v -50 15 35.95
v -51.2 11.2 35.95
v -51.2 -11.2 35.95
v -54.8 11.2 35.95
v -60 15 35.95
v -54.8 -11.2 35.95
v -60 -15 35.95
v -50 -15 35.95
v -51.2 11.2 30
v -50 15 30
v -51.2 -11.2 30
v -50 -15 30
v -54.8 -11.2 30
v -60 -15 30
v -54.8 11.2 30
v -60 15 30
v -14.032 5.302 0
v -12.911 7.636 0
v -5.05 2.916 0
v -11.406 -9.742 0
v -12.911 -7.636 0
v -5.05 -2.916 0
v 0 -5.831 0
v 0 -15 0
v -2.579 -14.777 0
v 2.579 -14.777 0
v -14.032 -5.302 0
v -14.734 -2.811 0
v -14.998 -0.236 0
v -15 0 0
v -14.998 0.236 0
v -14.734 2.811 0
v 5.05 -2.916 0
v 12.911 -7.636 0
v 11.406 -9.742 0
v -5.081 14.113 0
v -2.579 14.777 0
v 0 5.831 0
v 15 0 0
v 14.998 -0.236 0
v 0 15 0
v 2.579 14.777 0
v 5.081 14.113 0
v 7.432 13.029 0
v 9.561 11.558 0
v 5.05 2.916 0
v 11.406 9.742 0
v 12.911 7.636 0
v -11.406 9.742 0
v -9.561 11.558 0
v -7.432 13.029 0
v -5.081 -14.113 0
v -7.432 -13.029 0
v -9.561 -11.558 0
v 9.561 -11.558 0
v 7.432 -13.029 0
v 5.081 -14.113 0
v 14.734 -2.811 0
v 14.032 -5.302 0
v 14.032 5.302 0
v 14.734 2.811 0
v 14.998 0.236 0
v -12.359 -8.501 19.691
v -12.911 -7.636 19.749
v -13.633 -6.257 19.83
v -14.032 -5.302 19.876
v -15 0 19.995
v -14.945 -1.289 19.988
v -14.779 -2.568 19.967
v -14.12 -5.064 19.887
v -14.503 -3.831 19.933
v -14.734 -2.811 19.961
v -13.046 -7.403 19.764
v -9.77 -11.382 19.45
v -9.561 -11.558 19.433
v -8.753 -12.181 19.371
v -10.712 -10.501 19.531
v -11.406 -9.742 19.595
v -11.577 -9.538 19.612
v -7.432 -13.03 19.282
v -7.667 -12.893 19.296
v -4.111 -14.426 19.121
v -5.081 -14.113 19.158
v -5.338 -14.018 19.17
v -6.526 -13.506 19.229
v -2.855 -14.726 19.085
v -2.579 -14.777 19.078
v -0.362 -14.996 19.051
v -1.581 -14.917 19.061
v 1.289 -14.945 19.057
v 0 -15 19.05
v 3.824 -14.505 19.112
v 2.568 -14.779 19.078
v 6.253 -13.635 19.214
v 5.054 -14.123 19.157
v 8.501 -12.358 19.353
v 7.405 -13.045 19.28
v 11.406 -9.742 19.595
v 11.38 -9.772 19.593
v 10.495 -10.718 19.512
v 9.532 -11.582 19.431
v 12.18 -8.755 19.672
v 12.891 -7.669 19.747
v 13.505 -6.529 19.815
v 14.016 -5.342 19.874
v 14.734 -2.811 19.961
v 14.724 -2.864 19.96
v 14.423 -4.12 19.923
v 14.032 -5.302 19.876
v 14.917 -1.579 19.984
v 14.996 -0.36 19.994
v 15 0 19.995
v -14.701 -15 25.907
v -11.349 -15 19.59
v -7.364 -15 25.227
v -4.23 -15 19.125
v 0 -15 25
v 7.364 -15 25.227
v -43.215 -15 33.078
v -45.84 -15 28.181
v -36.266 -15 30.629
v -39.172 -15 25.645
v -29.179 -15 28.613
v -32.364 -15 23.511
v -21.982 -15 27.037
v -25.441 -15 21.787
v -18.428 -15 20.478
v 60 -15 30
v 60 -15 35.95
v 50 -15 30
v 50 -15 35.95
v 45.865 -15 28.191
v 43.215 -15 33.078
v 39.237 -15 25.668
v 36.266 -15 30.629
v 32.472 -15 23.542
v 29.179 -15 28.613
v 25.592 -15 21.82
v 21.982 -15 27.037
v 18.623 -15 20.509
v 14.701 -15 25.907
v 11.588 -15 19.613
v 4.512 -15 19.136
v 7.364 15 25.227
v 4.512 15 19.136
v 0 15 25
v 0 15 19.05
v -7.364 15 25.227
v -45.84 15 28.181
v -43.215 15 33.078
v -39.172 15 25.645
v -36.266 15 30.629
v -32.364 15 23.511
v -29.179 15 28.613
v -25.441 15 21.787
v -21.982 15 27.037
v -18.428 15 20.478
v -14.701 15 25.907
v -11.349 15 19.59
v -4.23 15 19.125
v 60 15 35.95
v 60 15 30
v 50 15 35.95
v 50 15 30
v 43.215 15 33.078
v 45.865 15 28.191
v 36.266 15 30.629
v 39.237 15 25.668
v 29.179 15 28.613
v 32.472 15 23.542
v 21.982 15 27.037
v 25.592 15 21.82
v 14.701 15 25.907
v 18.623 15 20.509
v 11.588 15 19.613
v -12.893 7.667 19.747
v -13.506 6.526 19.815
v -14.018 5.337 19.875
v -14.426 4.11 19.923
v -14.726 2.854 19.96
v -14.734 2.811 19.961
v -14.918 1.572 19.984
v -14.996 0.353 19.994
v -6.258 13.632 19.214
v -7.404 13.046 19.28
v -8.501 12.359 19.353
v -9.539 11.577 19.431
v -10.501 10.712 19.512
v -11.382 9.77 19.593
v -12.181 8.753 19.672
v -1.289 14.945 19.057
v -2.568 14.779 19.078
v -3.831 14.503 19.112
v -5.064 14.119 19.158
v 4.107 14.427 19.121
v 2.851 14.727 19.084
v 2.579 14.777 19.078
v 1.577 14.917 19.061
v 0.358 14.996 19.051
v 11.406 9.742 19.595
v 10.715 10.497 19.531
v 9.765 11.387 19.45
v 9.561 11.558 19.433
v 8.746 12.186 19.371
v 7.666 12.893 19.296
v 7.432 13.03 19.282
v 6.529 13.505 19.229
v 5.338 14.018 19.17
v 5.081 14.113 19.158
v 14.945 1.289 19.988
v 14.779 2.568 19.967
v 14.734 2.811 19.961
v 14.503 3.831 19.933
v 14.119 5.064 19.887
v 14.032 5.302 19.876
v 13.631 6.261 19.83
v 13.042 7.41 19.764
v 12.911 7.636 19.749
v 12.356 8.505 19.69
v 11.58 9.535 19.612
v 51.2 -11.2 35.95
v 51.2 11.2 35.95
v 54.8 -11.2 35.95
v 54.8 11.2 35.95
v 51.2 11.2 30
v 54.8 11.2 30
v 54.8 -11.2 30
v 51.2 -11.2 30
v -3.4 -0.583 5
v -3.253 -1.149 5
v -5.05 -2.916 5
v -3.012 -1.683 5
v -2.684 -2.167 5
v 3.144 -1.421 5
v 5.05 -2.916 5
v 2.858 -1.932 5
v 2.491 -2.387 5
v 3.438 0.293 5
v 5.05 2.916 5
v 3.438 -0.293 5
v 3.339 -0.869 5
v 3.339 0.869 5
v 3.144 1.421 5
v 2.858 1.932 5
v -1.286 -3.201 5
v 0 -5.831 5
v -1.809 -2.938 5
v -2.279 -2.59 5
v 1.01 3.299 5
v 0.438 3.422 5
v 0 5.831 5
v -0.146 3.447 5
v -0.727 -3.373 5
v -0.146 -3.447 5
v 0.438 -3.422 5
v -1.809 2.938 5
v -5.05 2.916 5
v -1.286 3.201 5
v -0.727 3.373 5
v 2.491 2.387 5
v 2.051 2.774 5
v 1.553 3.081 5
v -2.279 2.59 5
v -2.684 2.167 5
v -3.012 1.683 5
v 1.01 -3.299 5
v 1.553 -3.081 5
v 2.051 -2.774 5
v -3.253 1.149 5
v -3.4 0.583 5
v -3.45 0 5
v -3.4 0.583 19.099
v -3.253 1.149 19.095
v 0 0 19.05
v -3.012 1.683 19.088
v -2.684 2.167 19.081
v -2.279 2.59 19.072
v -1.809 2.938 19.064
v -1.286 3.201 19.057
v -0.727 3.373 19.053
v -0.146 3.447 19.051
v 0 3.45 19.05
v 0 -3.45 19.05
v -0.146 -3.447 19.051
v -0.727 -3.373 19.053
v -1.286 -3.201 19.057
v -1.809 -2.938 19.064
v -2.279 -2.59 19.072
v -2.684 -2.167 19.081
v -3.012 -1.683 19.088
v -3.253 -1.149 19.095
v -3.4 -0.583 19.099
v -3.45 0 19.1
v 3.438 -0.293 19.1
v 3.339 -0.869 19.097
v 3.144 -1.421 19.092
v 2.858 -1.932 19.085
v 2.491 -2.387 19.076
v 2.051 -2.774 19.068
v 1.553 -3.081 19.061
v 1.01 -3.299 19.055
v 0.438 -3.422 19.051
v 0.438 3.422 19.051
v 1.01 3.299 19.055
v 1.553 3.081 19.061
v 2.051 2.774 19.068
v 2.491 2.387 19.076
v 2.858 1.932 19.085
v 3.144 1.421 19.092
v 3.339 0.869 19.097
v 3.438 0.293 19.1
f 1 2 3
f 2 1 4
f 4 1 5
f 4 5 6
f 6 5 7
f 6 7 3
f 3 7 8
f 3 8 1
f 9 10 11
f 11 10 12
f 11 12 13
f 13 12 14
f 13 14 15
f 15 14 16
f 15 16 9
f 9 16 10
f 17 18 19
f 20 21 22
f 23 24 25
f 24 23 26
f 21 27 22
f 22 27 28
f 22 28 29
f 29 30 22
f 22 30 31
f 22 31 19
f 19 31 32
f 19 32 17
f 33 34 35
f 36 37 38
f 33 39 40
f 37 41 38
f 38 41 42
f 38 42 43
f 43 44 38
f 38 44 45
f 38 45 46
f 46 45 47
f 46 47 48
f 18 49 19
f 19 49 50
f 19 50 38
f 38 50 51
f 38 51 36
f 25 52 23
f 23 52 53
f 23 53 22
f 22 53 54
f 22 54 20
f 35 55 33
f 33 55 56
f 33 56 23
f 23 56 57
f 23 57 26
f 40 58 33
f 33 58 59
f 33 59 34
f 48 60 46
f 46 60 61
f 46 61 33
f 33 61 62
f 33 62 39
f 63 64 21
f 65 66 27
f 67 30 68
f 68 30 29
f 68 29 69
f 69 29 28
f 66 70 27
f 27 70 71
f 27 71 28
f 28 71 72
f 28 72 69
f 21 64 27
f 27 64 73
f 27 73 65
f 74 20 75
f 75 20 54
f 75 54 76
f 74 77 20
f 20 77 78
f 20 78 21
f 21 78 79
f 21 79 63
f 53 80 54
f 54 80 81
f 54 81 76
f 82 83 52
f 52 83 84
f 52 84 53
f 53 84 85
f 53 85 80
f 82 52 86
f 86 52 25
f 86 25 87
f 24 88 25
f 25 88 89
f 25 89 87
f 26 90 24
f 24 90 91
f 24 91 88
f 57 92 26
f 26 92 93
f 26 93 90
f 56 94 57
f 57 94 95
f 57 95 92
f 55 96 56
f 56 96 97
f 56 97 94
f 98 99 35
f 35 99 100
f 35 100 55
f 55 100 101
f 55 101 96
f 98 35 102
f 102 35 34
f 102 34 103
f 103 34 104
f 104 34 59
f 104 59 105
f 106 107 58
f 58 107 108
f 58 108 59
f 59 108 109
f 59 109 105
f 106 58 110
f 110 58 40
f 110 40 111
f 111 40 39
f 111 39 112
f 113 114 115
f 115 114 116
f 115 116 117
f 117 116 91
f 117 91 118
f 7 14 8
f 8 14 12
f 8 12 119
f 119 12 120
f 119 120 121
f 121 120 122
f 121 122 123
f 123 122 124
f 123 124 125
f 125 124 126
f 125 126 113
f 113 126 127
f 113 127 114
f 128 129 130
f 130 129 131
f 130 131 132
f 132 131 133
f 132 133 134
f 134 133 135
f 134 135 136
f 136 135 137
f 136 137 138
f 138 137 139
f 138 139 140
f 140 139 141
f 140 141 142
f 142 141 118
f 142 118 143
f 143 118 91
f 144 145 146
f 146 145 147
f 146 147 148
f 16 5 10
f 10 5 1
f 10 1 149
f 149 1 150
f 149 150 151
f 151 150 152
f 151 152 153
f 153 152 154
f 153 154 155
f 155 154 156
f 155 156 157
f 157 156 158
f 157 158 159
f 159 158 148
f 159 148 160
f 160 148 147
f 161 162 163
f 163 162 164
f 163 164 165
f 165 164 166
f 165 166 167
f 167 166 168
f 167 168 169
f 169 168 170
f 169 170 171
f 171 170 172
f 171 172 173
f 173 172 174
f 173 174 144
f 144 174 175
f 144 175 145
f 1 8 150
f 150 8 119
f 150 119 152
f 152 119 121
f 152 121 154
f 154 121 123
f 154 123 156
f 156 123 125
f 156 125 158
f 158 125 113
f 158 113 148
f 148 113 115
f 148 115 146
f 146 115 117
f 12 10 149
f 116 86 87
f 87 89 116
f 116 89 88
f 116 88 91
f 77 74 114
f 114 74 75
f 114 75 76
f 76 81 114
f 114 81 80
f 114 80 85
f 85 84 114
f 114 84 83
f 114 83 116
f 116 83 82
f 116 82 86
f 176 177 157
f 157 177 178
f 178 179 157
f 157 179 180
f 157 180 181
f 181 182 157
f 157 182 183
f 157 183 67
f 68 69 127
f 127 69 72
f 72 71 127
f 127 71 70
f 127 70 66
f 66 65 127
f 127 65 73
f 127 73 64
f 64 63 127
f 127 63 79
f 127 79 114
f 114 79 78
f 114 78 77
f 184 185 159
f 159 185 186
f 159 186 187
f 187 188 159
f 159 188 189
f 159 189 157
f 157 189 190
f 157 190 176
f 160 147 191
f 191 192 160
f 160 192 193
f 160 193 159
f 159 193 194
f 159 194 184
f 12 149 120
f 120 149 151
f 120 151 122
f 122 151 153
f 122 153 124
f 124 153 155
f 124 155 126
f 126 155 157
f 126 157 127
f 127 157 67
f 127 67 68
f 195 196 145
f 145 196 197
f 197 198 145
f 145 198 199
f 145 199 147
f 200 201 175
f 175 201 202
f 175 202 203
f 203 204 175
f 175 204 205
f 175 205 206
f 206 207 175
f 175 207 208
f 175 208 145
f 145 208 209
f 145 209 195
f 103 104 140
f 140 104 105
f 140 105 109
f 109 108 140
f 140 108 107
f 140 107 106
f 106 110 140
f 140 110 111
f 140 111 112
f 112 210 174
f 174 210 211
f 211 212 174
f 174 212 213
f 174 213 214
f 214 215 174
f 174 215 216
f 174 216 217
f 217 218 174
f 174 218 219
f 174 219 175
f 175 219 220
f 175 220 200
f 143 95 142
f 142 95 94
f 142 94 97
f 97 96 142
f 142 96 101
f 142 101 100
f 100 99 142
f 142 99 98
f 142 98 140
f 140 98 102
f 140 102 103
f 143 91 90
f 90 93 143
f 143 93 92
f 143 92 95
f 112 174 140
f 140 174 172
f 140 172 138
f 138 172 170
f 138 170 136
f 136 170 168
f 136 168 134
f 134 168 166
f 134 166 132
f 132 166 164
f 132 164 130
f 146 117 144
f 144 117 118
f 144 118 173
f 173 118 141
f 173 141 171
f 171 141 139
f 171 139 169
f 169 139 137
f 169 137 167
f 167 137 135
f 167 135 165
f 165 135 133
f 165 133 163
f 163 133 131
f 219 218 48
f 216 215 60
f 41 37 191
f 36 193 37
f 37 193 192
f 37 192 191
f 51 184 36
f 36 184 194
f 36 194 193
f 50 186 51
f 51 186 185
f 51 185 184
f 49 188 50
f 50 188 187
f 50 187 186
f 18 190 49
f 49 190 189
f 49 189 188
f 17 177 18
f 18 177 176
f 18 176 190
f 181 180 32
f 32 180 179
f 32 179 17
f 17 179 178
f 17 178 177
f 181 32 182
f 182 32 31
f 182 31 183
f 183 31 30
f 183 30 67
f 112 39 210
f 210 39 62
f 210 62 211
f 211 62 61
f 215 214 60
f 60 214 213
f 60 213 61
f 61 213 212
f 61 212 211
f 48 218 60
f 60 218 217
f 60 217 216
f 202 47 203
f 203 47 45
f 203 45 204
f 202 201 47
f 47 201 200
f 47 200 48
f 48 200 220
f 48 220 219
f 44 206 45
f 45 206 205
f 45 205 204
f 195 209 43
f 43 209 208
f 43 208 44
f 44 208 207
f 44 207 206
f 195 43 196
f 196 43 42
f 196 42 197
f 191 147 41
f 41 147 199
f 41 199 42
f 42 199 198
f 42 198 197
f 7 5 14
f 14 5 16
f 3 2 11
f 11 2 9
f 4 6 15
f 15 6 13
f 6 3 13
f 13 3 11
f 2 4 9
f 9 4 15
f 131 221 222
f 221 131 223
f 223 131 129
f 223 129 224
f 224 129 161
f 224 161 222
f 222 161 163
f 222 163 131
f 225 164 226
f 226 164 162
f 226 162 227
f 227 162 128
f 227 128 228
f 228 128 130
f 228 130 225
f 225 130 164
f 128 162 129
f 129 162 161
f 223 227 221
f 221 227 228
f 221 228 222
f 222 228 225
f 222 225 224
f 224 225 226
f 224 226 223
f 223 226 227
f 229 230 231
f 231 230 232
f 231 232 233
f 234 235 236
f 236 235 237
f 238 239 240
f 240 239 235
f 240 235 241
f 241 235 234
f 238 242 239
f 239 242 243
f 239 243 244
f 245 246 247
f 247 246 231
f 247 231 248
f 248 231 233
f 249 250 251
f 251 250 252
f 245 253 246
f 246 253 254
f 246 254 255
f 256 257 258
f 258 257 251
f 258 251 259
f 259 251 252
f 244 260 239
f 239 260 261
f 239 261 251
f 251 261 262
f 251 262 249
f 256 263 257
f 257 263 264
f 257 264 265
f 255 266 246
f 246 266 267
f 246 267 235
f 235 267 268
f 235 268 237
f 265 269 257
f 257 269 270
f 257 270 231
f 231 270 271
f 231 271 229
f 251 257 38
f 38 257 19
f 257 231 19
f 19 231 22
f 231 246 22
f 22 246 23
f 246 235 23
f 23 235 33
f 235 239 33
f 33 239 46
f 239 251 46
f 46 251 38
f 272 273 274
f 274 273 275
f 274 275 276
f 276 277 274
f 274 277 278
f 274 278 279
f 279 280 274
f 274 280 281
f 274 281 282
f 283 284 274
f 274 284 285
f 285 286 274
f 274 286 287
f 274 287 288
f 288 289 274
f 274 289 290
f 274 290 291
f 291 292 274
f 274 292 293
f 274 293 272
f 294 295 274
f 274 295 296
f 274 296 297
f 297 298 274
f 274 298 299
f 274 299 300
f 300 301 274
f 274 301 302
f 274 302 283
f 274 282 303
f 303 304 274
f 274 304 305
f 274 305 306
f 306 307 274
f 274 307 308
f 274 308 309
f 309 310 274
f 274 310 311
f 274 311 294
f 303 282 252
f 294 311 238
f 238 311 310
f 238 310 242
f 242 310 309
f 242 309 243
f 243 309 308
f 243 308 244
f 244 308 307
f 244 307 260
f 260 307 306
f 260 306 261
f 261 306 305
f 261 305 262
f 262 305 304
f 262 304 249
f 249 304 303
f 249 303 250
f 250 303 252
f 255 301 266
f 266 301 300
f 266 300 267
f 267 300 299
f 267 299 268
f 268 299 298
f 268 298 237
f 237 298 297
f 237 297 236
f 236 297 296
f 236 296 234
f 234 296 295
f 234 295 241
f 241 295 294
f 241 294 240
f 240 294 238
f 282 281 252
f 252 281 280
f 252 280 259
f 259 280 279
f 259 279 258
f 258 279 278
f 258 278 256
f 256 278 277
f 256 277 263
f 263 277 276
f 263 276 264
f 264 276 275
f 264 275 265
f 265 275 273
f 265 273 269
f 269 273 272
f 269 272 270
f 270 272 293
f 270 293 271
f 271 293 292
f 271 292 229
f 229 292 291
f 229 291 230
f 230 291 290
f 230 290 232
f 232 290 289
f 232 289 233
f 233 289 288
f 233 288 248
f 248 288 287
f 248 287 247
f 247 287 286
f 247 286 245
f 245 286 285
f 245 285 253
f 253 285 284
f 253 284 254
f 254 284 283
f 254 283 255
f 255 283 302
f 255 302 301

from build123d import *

# Parameters (mm, degrees)
BOSS_EXTRUDE1_START         = -15
BOSS_EXTRUDE1_DEPTH         = 30
BOSS_EXTRUDE1_START_2       = -12.7
BOSS_EXTRUDE1_2_OUTLINE_W   = 10
BOSS_EXTRUDE1_2_OUTLINE_H   = 5.949524979
BOSS_EXTRUDE1_2_DEPTH       = 25.4
BOSS_EXTRUDE1_3_OUTLINE_R   = 15
BOSS_EXTRUDE1_3_OUTLINE_R_2 = 4.55
BOSS_EXTRUDE1_3_DEPTH       = 19.994560744
SKETCH4_W                   = 3.6
SKETCH4_H                   = 22.4
CUT_EXTRUDE1_DEPTH          = 6
BOSS_EXTRUDE2_REACH         = 73.536
BOSS_EXTRUDE2_END_RADIUS    = 119.634966004
SKETCH9_R                   = 6.57997386
SKETCH9_R_2                 = 3.45
SKETCH10_W                  = 5.949524979
SKETCH10_H                  = 2.3
BOSS_EXTRUDE3_DEPTH         = 10
SKETCH11_W                  = 5.949524979
SKETCH11_H                  = 30
BOSS_EXTRUDE4_DEPTH         = 10
SKETCH13_W                  = 3.6
SKETCH13_H                  = 22.4
CUT_EXTRUDE2_DEPTH          = 10
CUT_EXTRUDE3_DEPTH          = 5


with BuildPart() as part:
    # Boss-Extrude1: read off the stored shape, not the designer's step
    # Boss-Extrude1 outline → Boss-Extrude1 (new body)
    with BuildSketch(Plane(origin=(0, 0, 0), x_dir=(1, 0, 0), z_dir=(0, 1, 0)).offset(BOSS_EXTRUDE1_START)):
        with BuildLine():
            Line((-50, -30), (-50, -35.949524979))
            ThreePointArc((-50, -35.949524979), (-25.592440765, -27.769436157), (0, -25))
            ThreePointArc((0, -25), (25.592440765, -27.769436157), (50, -35.949524979))
            Line((50, -35.949524979), (50, -30))
            ThreePointArc((50, -30), (27.810549479, -22.327809439), (4.550000287, -19.13702996))
            ThreePointArc((4.550000287, -19.13702996), (2.275411741, -19.072115713), (0, -19.050475021))
            ThreePointArc((0, -19.050475021), (-25.592440765, -21.819911178), (-50, -30))
        make_face()
    extrude(amount=BOSS_EXTRUDE1_DEPTH)

    # Boss-Extrude1 2 outline → Boss-Extrude1 2 (add)
    with BuildSketch(Plane(origin=(0, 0, 0), x_dir=(1, 0, 0), z_dir=(0, 1, 0)).offset(BOSS_EXTRUDE1_START_2)):
        with Locations((-55, -32.97476249)):
            Rectangle(BOSS_EXTRUDE1_2_OUTLINE_W, BOSS_EXTRUDE1_2_OUTLINE_H)
    extrude(amount=BOSS_EXTRUDE1_2_DEPTH)

    # Boss-Extrude1 3 outline → Boss-Extrude1 3 (add)
    with BuildSketch(Plane.XY):
        Circle(BOSS_EXTRUDE1_3_OUTLINE_R)
        Circle(BOSS_EXTRUDE1_3_OUTLINE_R_2, mode=Mode.SUBTRACT)
    extrude(amount=BOSS_EXTRUDE1_3_DEPTH)

    # Sketch4 → Cut-Extrude1 (cut)
    with BuildSketch(Plane.XY.offset(35.949524979)):
        with Locations((-53, 0)):
            Rectangle(SKETCH4_W, SKETCH4_H)
    extrude(amount=-CUT_EXTRUDE1_DEPTH, mode=Mode.SUBTRACT)

    # Boss-Extrude2: up to this cylinder (the profile starts outside it)
    boss_extrude2_end = Plane(origin=(0, 0, 138.685441025), z_dir=(0, -1, 0)) * Cylinder(BOSS_EXTRUDE2_END_RADIUS, 387.341932008, mode=Mode.PRIVATE)
    # Sketch9 → Boss-Extrude2 (add, up to the surface)
    with BuildSketch(Plane(origin=(0, 0, 0), x_dir=(-1, 0, 0), z_dir=(0, 0, -1)), mode=Mode.PRIVATE) as boss_extrude2_sk1:
        Circle(SKETCH9_R)
        Circle(SKETCH9_R_2, mode=Mode.SUBTRACT)
    boss_extrude2_tool1 = extrude(boss_extrude2_sk1.sketch, amount=-BOSS_EXTRUDE2_REACH, mode=Mode.PRIVATE) - boss_extrude2_end
    add(boss_extrude2_tool1.solids().sort_by_distance((6.393864, 0, 0))[0])

    # Sketch10 → Boss-Extrude3 (add)
    with BuildSketch(Plane.ZY.offset(50)):
        with Locations((32.97476249, 13.85)):
            Rectangle(SKETCH10_W, SKETCH10_H)
        with Locations((32.97476249, -13.85)):
            Rectangle(SKETCH10_W, SKETCH10_H)
    extrude(amount=BOSS_EXTRUDE3_DEPTH)

    # Sketch11 → Boss-Extrude4 (add)
    with BuildSketch(Plane(origin=(50, 0, 0), x_dir=(0, 0, -1), z_dir=(1, 0, 0))):
        with Locations((-32.97476249, 0)):
            Rectangle(SKETCH11_W, SKETCH11_H)
    extrude(amount=BOSS_EXTRUDE4_DEPTH)

    # Sketch13 → Cut-Extrude2 (cut)
    with BuildSketch(Plane.XY.offset(35.949524979)):
        with Locations((53, 0)):
            Rectangle(SKETCH13_W, SKETCH13_H)
    extrude(amount=-CUT_EXTRUDE2_DEPTH, mode=Mode.SUBTRACT)

    # Sketch15 → Cut-Extrude3 (cut)
    with BuildSketch(Plane(origin=(0, 0, 0), x_dir=(-1, 0, 0), z_dir=(0, 0, -1))):
        Polygon((0, 5.831237719), (-5.05, 2.915618859), (-5.05, -2.915618859), (0, -5.831237719), (5.05, -2.915618859), (5.05, 2.915618859), align=None)
    extrude(amount=-CUT_EXTRUDE3_DEPTH, mode=Mode.SUBTRACT)


solid = part.part
